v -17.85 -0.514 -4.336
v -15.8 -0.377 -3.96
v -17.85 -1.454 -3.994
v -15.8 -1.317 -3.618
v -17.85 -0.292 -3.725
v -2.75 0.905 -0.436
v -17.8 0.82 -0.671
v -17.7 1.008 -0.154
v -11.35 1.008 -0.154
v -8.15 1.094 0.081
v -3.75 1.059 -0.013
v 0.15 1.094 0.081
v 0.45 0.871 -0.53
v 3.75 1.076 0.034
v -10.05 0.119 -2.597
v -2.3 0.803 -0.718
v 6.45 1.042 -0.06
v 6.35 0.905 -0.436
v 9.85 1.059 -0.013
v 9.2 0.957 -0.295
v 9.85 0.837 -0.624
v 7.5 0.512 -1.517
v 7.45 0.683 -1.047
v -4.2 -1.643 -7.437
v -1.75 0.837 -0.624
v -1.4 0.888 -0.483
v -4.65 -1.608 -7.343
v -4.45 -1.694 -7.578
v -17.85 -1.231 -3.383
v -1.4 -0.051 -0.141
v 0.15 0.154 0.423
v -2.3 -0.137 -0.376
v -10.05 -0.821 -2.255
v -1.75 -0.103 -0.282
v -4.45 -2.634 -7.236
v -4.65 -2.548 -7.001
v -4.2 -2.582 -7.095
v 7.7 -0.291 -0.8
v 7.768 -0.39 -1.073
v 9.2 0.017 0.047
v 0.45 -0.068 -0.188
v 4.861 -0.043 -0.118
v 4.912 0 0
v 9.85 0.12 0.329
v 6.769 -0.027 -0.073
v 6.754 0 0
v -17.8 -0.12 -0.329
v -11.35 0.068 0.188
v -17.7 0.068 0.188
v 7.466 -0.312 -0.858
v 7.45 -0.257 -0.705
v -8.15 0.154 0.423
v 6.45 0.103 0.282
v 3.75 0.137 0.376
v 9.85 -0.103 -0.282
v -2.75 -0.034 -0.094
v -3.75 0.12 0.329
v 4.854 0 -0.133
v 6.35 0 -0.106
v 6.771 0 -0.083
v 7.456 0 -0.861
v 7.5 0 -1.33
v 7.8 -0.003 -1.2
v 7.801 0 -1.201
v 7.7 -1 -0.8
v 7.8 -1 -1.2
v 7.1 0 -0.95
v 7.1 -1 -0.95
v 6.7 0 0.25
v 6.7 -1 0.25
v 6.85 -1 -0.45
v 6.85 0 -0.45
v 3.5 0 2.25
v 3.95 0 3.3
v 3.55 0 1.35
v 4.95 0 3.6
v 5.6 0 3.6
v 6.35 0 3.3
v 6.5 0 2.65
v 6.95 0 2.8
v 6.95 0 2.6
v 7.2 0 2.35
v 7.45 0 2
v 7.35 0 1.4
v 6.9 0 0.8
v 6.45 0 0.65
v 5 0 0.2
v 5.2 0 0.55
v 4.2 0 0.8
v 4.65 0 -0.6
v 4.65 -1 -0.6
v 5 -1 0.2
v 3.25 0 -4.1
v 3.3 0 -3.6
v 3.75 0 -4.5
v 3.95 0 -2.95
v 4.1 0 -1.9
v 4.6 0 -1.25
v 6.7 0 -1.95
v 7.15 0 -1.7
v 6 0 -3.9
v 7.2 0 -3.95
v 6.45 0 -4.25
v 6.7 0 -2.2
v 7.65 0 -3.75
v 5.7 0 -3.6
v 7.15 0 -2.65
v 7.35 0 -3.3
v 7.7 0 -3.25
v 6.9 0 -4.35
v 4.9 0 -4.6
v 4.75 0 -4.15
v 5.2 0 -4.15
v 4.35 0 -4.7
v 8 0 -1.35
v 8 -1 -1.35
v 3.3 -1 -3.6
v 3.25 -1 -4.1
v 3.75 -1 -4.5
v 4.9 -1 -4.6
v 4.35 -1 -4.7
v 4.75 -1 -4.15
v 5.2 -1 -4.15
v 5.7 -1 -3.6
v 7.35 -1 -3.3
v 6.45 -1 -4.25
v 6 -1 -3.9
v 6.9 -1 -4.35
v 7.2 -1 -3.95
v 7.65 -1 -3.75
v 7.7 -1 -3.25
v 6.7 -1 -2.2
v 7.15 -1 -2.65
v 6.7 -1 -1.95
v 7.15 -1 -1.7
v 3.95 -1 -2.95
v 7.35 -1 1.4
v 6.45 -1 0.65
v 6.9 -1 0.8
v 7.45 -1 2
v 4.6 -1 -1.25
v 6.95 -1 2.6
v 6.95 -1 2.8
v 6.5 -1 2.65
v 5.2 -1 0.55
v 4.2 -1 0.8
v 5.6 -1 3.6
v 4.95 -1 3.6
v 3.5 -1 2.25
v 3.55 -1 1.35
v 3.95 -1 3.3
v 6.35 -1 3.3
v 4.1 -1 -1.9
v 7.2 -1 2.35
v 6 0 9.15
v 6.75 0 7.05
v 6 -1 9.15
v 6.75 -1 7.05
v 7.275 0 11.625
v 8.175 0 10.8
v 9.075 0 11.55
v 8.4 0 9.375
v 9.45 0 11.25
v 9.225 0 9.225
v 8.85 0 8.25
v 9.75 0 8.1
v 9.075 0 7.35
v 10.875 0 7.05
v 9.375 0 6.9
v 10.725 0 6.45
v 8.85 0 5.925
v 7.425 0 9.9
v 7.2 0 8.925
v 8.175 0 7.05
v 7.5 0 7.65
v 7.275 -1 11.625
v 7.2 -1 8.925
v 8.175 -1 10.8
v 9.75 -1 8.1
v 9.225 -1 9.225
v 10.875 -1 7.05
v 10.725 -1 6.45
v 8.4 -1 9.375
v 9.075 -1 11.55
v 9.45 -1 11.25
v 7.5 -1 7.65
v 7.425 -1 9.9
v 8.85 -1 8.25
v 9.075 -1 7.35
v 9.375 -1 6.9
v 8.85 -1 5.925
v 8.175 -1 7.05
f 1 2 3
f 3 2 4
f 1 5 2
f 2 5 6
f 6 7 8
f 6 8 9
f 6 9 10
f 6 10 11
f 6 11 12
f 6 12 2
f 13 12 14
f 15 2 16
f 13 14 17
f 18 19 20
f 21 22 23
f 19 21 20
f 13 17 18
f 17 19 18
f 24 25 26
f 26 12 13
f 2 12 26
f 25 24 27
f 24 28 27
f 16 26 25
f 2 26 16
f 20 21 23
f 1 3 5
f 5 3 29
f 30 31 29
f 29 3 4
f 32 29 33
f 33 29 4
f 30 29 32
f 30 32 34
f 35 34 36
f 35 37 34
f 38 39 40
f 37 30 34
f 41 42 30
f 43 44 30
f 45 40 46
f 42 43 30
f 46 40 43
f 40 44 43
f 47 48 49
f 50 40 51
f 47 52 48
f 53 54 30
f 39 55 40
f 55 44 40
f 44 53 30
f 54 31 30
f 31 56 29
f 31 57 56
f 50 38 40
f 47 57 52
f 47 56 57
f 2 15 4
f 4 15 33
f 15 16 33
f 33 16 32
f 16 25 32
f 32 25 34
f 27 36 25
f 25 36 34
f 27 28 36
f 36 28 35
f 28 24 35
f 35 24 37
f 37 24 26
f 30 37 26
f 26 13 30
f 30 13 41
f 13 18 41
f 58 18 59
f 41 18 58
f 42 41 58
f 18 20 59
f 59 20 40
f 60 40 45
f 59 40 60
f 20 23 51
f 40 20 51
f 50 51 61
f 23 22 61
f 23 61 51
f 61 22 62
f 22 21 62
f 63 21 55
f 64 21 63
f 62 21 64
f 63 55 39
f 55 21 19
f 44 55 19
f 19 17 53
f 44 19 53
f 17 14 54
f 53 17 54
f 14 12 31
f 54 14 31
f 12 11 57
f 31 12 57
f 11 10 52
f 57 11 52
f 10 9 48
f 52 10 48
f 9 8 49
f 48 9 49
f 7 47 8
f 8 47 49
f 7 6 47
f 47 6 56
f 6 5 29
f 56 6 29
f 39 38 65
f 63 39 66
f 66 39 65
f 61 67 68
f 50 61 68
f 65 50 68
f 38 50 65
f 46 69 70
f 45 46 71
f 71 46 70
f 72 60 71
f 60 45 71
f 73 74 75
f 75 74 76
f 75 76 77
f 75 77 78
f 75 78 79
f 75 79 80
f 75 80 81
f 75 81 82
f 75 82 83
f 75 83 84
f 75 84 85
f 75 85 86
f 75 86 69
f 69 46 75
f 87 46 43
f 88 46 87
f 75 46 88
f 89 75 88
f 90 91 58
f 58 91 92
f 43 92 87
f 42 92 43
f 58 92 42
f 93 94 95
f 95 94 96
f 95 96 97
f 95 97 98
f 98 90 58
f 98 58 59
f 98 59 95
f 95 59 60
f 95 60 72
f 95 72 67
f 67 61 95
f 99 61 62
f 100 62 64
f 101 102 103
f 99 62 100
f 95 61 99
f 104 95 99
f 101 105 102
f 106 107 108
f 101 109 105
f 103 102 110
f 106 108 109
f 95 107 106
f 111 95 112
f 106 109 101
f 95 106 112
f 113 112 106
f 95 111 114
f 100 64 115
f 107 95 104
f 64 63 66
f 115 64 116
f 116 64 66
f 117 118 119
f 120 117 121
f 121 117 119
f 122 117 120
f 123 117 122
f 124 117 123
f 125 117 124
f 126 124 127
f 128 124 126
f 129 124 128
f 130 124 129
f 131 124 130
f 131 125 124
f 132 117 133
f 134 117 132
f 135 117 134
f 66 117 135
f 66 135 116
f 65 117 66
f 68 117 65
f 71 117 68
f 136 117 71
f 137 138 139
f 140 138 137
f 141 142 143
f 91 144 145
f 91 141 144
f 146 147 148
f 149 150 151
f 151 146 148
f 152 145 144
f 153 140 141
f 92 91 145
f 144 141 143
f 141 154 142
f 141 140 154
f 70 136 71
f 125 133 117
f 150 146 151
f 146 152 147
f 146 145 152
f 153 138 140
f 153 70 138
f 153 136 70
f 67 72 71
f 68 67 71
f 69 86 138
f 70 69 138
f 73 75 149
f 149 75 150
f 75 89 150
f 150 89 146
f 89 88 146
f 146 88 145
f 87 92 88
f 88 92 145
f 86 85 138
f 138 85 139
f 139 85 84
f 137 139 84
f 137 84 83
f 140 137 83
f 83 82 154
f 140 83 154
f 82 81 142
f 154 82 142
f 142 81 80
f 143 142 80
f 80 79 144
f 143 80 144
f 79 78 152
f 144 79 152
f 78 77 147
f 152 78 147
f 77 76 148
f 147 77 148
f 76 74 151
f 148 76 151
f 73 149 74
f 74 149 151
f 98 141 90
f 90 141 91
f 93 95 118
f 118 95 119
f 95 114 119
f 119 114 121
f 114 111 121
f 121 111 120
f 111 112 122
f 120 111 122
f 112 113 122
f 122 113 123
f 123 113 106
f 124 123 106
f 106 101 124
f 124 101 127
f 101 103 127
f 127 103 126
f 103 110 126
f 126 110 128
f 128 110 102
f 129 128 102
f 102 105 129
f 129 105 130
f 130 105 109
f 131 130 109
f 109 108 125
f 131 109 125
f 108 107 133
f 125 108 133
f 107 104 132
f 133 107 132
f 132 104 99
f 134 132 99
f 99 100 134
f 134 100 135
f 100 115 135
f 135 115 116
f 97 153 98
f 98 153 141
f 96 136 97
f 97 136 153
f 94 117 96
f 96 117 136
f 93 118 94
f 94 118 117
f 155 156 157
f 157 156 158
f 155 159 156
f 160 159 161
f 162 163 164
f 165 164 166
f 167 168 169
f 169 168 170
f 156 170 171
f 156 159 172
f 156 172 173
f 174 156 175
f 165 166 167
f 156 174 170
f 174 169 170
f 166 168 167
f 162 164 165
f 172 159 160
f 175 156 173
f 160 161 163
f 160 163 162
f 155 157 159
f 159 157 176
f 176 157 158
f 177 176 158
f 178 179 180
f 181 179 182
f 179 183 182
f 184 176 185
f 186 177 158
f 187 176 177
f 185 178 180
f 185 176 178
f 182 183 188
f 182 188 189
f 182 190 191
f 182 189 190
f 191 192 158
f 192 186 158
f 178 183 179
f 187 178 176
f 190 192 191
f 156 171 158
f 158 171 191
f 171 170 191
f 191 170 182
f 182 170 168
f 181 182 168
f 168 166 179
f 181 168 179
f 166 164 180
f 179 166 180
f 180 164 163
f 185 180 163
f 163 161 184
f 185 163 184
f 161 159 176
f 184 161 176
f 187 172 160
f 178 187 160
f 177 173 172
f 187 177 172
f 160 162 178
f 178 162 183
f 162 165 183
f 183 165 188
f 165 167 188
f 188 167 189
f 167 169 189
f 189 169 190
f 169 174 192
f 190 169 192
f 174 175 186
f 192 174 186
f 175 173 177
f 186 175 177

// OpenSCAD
// file: pageFour.scad
//start
module  lines() 
{ 
color  ("purple") 
{ 
            polygon(points = [
[-17.70,0.20]
,[-15.65,0.20]
,[-11.35,0.20]
,[-8.15,0.45]
,[-3.75,0.35]
,[0.15,0.45]
,[3.75,0.40]
,[6.45,0.30]
,[9.85,0.35]
,[9.85,-0.30]
,[7.50,-1.25]
,[7.45,-0.75]
,[9.20,0.05]
,[6.35,-0.10]
,[0.45,-0.20]
,[-1.40,-0.15]
,[-4.20,-7.55]
,[-4.45,-7.70]
,[-4.65,-7.45]
,[-1.75,-0.30]
,[-2.30,-0.40]
,[-10.05,-2.40]
,[-15.80,-3.85]
,[-17.85,-4.25]
,[-17.85,-3.60]
,[-2.75,-0.10]
,[-17.80,-0.35]
]
,paths = [
[0,1,2,3,4,5,6,7,8,9,10,11,12,13,14,15,16,17,18,19,20,21,22,23,24,25,26]]
            );
}
}
//start
module  boy() 
{ 
color  ("white") 
{ 
            polygon(points = [
[22.40,-11.60]
,[21.85,-11.70]
,[21.25,-11.50]
,[20.75,-11.10]
,[20.80,-10.60]
,[21.45,-9.95]
,[21.60,-8.90]
,[22.10,-8.25]
,[22.15,-7.60]
,[22.50,-6.80]
,[22.70,-6.45]
,[21.70,-6.20]
,[21.05,-5.65]
,[21.00,-4.75]
,[21.45,-3.70]
,[22.45,-3.40]
,[23.10,-3.40]
,[23.85,-3.70]
,[24.00,-4.35]
,[24.45,-4.20]
,[24.45,-4.40]
,[24.70,-4.65]
,[24.95,-5.00]
,[24.85,-5.60]
,[24.40,-6.20]
,[23.95,-6.35]
,[24.20,-6.75]
,[24.35,-7.45]
,[24.60,-7.95]
,[25.20,-7.80]
,[25.30,-8.20]
,[25.50,-8.35]
,[24.65,-8.70]
,[24.20,-8.95]
,[24.20,-9.20]
,[24.65,-9.65]
,[24.85,-10.30]
,[25.20,-10.25]
,[25.15,-10.75]
,[24.70,-10.95]
,[24.40,-11.35]
,[23.95,-11.25]
,[23.50,-10.90]
,[23.20,-10.60]
,[22.70,-11.15]
,[22.25,-11.15]
]
,paths = [
[0,1,2,3,4,5,6,7,8,9,10,11,12,13,14,15,16,17,18,19,20,21,22,23,24,25,26,27,28,29,30,31,32,33,34,35,36,37,38,39,40,41,42,43,44,45]]
            );
}
}
//start
module  outerMoon() 
{ 
color  ("purple") 
{ 
            polygon(points = [
[26.05,2.70]
,[24.85,2.75]
,[24.00,1.10]
,[24.50,-0.30]
,[25.90,-1.05]
,[27.15,-0.70]
,[27.25,-0.30]
,[26.50,0.40]
,[26.15,1.15]
,[26.30,2.50]
]
,paths = [
[0,1,2,3,4,5,6,7,8,9]]
            );
}
}
//start
module  innerMoon() 
{ 
color  ("purple") 
{ 
            polygon(points = [
[25.45,2.20]
,[24.95,1.60]
,[24.80,0.95]
,[25.00,0.10]
,[25.45,-0.30]
,[26.25,-0.40]
,[26.05,-0.10]
,[25.90,0.50]
,[25.60,1.25]
]
,paths = [
[0,1,2,3,4,5,6,7,8]]
            );
}
}
// main file
use <pageFour.scad>;
use <write.scad>;

rotate([90,0,0]){

	rotate([-20,0,0])
	translate([0,0,-1])
	linear_extrude(height = 1)
		lines();

	linear_extrude(height = 1)
	scale([1.5,1.5,1.5])
	translate([-20,5,0])
		difference(){
			outerMoon();
			innerMoon();
		}

	linear_extrude(height = 1)
	translate([-17.5,7,0])
		boy();
}
